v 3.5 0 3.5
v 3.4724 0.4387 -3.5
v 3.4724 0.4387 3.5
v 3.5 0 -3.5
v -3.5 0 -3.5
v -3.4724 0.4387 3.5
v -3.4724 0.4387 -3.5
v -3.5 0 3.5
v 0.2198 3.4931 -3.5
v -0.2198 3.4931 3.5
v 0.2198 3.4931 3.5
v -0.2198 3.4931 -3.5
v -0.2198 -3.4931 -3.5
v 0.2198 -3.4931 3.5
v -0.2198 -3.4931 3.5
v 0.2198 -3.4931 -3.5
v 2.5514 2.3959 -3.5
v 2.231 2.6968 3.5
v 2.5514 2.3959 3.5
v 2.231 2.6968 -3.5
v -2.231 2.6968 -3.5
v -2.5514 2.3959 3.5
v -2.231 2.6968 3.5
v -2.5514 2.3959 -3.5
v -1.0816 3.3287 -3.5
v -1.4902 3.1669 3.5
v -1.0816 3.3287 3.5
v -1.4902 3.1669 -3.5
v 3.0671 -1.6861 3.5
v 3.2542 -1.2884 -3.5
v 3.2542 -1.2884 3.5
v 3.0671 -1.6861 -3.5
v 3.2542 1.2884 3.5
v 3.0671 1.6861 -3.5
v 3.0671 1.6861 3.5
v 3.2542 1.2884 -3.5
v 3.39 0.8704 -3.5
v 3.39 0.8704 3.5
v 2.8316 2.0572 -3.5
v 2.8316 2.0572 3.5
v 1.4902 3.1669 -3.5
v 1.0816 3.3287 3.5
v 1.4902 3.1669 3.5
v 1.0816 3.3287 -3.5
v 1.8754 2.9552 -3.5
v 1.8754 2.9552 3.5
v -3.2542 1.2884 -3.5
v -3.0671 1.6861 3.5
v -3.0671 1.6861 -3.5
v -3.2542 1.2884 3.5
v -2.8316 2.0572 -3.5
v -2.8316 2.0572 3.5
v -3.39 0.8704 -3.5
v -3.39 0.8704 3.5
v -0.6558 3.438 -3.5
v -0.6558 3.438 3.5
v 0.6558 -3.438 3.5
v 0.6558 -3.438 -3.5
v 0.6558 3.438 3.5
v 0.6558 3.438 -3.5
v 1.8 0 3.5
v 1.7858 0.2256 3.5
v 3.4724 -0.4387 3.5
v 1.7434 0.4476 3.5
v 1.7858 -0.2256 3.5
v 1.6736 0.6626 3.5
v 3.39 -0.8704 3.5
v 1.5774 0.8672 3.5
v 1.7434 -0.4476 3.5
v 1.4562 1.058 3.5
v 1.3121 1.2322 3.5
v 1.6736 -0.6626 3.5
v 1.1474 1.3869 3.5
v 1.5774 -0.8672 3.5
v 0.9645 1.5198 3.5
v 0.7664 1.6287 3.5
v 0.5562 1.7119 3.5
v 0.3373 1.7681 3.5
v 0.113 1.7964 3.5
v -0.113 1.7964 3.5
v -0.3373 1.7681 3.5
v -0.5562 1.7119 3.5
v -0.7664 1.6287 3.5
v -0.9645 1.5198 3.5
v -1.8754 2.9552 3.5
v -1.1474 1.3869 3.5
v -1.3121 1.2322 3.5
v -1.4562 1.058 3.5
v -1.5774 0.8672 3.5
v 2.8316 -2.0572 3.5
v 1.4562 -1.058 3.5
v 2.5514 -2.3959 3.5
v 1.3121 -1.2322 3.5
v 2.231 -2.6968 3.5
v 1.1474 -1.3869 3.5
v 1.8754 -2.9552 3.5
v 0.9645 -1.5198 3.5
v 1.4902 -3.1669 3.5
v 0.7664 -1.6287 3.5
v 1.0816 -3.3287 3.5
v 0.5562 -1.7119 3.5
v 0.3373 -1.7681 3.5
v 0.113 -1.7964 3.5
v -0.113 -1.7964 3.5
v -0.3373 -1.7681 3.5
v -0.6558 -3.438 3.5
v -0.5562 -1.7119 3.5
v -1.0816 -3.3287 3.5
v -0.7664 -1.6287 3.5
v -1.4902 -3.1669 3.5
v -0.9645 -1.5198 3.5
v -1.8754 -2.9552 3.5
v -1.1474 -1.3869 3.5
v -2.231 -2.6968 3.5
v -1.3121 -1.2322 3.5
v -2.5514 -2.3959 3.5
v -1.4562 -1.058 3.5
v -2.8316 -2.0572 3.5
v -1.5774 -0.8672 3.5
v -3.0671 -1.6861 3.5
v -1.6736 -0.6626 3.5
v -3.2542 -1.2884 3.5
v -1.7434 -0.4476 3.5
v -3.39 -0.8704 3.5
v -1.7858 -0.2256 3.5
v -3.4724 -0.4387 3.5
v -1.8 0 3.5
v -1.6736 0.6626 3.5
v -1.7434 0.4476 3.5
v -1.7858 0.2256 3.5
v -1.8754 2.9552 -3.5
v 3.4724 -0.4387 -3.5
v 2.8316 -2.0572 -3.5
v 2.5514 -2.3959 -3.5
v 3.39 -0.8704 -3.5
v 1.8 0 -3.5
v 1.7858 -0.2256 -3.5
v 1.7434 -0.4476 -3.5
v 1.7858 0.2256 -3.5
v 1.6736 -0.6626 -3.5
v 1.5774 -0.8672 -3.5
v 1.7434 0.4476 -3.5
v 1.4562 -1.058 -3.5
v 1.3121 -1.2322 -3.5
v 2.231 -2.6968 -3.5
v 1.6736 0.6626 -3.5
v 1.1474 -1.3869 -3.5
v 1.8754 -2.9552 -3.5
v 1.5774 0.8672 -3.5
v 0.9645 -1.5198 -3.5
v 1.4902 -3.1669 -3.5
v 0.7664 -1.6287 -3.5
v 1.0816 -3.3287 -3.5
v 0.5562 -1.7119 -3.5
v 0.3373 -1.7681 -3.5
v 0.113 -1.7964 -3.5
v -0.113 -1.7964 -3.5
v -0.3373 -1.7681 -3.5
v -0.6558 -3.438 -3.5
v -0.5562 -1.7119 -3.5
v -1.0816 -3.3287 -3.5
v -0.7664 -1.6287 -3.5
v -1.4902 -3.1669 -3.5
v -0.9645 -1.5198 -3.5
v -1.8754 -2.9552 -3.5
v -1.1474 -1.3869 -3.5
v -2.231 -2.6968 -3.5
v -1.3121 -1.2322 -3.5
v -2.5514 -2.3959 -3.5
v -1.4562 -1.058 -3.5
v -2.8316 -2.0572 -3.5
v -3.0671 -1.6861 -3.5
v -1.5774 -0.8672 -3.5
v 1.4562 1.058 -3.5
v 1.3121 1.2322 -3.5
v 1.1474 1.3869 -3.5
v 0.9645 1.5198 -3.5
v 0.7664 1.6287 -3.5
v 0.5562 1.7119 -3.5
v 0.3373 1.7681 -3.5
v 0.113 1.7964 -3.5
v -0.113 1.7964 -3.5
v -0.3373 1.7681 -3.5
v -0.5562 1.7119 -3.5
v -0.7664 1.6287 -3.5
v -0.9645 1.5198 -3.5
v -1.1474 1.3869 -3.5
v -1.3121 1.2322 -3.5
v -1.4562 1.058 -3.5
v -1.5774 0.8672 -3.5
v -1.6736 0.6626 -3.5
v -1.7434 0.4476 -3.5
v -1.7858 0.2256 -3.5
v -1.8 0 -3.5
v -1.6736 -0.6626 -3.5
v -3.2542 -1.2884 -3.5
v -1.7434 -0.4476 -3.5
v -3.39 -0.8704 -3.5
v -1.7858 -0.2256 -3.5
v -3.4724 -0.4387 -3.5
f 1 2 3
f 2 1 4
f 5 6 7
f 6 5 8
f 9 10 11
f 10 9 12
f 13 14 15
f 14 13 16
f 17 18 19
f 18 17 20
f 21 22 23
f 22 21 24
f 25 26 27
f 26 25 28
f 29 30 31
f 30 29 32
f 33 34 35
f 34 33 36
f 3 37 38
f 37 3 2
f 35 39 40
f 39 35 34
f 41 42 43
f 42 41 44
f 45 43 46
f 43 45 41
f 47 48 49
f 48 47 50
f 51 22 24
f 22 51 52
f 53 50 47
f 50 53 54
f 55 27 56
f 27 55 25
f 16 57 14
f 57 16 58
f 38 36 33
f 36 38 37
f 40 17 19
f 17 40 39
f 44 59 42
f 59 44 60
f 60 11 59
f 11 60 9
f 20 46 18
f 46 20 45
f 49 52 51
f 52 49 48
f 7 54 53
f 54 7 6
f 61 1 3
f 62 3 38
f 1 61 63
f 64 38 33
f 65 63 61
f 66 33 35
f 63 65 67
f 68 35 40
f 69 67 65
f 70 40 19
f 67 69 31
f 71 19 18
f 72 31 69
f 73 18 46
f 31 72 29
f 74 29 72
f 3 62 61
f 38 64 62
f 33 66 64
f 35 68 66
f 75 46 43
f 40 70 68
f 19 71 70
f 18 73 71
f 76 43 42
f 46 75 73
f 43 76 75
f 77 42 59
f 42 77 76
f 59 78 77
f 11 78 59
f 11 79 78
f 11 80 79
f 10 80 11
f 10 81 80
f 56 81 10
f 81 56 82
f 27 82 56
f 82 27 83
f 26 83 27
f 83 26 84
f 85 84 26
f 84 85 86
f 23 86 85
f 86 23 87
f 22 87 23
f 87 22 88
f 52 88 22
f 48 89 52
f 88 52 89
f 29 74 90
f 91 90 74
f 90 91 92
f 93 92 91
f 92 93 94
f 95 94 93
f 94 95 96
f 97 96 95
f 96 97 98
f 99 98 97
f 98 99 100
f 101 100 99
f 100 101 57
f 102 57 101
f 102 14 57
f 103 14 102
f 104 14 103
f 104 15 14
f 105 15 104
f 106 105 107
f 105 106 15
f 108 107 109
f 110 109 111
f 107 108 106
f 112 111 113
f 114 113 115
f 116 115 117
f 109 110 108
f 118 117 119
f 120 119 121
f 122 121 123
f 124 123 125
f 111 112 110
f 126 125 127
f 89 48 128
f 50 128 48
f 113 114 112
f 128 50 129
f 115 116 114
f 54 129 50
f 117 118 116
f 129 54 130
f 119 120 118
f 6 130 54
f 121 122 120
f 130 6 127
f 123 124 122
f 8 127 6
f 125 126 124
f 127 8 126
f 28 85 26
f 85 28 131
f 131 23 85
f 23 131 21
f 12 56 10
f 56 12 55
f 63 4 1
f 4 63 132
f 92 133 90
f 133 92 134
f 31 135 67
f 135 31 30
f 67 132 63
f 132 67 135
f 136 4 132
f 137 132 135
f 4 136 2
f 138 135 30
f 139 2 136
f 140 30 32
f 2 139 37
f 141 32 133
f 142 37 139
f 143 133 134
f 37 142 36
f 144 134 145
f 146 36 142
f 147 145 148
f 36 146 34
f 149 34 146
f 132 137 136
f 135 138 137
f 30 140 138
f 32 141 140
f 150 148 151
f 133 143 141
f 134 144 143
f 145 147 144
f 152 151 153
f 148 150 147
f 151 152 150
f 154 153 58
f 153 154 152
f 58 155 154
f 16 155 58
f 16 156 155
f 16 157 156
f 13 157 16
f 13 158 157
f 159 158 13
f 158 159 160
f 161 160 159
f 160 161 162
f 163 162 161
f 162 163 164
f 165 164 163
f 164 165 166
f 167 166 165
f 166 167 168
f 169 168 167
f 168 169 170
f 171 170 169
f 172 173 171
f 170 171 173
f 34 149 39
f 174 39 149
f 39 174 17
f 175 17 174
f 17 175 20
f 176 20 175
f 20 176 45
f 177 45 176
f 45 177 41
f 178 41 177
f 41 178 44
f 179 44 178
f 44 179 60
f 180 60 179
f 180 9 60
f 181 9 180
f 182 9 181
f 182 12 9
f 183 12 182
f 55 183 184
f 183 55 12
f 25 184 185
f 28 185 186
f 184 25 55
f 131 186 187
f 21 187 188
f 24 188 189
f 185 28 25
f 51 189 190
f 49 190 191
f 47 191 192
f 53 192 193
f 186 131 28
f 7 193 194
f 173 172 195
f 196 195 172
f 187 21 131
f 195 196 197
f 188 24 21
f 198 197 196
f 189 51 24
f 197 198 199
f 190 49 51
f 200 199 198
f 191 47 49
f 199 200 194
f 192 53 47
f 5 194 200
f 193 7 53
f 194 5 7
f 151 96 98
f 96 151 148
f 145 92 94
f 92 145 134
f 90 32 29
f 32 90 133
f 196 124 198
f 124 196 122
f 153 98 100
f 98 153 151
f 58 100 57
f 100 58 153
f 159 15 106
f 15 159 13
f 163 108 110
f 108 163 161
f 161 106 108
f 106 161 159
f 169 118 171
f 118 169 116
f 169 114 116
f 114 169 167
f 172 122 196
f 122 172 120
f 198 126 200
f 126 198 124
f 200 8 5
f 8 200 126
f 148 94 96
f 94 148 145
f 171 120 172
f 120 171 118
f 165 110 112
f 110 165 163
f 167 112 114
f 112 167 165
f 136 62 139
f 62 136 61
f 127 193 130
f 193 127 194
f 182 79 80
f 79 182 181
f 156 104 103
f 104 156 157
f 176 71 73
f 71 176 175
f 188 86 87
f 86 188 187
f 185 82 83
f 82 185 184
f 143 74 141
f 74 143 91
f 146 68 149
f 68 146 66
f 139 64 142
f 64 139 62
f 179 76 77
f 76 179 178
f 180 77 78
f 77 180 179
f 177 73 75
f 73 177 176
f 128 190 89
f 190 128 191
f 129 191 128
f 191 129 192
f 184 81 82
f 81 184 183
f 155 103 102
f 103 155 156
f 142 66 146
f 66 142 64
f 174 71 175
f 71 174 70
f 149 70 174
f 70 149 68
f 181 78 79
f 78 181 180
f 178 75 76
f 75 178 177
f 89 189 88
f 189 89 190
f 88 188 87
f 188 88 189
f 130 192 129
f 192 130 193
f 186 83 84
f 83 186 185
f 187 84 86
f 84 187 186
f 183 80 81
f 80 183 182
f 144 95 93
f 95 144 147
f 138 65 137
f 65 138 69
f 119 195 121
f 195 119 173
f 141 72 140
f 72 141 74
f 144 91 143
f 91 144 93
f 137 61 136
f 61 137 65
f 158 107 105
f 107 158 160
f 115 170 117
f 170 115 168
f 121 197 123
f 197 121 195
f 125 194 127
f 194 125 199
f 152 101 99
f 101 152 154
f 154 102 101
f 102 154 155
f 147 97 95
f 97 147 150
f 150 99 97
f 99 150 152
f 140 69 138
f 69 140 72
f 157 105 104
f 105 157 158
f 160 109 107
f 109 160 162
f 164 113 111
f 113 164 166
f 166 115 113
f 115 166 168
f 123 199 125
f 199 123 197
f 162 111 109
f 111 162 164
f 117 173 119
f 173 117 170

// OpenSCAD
$fn = 50;


difference() {
	union() {
		translate(v = [0, 0, -3.5000000000]) {
			cylinder(h = 7, r = 3.5000000000);
		}
	}
	union() {
		translate(v = [0, 0, -100.0000000000]) {
			cylinder(h = 200, r = 1.8000000000);
		}
	}
}
